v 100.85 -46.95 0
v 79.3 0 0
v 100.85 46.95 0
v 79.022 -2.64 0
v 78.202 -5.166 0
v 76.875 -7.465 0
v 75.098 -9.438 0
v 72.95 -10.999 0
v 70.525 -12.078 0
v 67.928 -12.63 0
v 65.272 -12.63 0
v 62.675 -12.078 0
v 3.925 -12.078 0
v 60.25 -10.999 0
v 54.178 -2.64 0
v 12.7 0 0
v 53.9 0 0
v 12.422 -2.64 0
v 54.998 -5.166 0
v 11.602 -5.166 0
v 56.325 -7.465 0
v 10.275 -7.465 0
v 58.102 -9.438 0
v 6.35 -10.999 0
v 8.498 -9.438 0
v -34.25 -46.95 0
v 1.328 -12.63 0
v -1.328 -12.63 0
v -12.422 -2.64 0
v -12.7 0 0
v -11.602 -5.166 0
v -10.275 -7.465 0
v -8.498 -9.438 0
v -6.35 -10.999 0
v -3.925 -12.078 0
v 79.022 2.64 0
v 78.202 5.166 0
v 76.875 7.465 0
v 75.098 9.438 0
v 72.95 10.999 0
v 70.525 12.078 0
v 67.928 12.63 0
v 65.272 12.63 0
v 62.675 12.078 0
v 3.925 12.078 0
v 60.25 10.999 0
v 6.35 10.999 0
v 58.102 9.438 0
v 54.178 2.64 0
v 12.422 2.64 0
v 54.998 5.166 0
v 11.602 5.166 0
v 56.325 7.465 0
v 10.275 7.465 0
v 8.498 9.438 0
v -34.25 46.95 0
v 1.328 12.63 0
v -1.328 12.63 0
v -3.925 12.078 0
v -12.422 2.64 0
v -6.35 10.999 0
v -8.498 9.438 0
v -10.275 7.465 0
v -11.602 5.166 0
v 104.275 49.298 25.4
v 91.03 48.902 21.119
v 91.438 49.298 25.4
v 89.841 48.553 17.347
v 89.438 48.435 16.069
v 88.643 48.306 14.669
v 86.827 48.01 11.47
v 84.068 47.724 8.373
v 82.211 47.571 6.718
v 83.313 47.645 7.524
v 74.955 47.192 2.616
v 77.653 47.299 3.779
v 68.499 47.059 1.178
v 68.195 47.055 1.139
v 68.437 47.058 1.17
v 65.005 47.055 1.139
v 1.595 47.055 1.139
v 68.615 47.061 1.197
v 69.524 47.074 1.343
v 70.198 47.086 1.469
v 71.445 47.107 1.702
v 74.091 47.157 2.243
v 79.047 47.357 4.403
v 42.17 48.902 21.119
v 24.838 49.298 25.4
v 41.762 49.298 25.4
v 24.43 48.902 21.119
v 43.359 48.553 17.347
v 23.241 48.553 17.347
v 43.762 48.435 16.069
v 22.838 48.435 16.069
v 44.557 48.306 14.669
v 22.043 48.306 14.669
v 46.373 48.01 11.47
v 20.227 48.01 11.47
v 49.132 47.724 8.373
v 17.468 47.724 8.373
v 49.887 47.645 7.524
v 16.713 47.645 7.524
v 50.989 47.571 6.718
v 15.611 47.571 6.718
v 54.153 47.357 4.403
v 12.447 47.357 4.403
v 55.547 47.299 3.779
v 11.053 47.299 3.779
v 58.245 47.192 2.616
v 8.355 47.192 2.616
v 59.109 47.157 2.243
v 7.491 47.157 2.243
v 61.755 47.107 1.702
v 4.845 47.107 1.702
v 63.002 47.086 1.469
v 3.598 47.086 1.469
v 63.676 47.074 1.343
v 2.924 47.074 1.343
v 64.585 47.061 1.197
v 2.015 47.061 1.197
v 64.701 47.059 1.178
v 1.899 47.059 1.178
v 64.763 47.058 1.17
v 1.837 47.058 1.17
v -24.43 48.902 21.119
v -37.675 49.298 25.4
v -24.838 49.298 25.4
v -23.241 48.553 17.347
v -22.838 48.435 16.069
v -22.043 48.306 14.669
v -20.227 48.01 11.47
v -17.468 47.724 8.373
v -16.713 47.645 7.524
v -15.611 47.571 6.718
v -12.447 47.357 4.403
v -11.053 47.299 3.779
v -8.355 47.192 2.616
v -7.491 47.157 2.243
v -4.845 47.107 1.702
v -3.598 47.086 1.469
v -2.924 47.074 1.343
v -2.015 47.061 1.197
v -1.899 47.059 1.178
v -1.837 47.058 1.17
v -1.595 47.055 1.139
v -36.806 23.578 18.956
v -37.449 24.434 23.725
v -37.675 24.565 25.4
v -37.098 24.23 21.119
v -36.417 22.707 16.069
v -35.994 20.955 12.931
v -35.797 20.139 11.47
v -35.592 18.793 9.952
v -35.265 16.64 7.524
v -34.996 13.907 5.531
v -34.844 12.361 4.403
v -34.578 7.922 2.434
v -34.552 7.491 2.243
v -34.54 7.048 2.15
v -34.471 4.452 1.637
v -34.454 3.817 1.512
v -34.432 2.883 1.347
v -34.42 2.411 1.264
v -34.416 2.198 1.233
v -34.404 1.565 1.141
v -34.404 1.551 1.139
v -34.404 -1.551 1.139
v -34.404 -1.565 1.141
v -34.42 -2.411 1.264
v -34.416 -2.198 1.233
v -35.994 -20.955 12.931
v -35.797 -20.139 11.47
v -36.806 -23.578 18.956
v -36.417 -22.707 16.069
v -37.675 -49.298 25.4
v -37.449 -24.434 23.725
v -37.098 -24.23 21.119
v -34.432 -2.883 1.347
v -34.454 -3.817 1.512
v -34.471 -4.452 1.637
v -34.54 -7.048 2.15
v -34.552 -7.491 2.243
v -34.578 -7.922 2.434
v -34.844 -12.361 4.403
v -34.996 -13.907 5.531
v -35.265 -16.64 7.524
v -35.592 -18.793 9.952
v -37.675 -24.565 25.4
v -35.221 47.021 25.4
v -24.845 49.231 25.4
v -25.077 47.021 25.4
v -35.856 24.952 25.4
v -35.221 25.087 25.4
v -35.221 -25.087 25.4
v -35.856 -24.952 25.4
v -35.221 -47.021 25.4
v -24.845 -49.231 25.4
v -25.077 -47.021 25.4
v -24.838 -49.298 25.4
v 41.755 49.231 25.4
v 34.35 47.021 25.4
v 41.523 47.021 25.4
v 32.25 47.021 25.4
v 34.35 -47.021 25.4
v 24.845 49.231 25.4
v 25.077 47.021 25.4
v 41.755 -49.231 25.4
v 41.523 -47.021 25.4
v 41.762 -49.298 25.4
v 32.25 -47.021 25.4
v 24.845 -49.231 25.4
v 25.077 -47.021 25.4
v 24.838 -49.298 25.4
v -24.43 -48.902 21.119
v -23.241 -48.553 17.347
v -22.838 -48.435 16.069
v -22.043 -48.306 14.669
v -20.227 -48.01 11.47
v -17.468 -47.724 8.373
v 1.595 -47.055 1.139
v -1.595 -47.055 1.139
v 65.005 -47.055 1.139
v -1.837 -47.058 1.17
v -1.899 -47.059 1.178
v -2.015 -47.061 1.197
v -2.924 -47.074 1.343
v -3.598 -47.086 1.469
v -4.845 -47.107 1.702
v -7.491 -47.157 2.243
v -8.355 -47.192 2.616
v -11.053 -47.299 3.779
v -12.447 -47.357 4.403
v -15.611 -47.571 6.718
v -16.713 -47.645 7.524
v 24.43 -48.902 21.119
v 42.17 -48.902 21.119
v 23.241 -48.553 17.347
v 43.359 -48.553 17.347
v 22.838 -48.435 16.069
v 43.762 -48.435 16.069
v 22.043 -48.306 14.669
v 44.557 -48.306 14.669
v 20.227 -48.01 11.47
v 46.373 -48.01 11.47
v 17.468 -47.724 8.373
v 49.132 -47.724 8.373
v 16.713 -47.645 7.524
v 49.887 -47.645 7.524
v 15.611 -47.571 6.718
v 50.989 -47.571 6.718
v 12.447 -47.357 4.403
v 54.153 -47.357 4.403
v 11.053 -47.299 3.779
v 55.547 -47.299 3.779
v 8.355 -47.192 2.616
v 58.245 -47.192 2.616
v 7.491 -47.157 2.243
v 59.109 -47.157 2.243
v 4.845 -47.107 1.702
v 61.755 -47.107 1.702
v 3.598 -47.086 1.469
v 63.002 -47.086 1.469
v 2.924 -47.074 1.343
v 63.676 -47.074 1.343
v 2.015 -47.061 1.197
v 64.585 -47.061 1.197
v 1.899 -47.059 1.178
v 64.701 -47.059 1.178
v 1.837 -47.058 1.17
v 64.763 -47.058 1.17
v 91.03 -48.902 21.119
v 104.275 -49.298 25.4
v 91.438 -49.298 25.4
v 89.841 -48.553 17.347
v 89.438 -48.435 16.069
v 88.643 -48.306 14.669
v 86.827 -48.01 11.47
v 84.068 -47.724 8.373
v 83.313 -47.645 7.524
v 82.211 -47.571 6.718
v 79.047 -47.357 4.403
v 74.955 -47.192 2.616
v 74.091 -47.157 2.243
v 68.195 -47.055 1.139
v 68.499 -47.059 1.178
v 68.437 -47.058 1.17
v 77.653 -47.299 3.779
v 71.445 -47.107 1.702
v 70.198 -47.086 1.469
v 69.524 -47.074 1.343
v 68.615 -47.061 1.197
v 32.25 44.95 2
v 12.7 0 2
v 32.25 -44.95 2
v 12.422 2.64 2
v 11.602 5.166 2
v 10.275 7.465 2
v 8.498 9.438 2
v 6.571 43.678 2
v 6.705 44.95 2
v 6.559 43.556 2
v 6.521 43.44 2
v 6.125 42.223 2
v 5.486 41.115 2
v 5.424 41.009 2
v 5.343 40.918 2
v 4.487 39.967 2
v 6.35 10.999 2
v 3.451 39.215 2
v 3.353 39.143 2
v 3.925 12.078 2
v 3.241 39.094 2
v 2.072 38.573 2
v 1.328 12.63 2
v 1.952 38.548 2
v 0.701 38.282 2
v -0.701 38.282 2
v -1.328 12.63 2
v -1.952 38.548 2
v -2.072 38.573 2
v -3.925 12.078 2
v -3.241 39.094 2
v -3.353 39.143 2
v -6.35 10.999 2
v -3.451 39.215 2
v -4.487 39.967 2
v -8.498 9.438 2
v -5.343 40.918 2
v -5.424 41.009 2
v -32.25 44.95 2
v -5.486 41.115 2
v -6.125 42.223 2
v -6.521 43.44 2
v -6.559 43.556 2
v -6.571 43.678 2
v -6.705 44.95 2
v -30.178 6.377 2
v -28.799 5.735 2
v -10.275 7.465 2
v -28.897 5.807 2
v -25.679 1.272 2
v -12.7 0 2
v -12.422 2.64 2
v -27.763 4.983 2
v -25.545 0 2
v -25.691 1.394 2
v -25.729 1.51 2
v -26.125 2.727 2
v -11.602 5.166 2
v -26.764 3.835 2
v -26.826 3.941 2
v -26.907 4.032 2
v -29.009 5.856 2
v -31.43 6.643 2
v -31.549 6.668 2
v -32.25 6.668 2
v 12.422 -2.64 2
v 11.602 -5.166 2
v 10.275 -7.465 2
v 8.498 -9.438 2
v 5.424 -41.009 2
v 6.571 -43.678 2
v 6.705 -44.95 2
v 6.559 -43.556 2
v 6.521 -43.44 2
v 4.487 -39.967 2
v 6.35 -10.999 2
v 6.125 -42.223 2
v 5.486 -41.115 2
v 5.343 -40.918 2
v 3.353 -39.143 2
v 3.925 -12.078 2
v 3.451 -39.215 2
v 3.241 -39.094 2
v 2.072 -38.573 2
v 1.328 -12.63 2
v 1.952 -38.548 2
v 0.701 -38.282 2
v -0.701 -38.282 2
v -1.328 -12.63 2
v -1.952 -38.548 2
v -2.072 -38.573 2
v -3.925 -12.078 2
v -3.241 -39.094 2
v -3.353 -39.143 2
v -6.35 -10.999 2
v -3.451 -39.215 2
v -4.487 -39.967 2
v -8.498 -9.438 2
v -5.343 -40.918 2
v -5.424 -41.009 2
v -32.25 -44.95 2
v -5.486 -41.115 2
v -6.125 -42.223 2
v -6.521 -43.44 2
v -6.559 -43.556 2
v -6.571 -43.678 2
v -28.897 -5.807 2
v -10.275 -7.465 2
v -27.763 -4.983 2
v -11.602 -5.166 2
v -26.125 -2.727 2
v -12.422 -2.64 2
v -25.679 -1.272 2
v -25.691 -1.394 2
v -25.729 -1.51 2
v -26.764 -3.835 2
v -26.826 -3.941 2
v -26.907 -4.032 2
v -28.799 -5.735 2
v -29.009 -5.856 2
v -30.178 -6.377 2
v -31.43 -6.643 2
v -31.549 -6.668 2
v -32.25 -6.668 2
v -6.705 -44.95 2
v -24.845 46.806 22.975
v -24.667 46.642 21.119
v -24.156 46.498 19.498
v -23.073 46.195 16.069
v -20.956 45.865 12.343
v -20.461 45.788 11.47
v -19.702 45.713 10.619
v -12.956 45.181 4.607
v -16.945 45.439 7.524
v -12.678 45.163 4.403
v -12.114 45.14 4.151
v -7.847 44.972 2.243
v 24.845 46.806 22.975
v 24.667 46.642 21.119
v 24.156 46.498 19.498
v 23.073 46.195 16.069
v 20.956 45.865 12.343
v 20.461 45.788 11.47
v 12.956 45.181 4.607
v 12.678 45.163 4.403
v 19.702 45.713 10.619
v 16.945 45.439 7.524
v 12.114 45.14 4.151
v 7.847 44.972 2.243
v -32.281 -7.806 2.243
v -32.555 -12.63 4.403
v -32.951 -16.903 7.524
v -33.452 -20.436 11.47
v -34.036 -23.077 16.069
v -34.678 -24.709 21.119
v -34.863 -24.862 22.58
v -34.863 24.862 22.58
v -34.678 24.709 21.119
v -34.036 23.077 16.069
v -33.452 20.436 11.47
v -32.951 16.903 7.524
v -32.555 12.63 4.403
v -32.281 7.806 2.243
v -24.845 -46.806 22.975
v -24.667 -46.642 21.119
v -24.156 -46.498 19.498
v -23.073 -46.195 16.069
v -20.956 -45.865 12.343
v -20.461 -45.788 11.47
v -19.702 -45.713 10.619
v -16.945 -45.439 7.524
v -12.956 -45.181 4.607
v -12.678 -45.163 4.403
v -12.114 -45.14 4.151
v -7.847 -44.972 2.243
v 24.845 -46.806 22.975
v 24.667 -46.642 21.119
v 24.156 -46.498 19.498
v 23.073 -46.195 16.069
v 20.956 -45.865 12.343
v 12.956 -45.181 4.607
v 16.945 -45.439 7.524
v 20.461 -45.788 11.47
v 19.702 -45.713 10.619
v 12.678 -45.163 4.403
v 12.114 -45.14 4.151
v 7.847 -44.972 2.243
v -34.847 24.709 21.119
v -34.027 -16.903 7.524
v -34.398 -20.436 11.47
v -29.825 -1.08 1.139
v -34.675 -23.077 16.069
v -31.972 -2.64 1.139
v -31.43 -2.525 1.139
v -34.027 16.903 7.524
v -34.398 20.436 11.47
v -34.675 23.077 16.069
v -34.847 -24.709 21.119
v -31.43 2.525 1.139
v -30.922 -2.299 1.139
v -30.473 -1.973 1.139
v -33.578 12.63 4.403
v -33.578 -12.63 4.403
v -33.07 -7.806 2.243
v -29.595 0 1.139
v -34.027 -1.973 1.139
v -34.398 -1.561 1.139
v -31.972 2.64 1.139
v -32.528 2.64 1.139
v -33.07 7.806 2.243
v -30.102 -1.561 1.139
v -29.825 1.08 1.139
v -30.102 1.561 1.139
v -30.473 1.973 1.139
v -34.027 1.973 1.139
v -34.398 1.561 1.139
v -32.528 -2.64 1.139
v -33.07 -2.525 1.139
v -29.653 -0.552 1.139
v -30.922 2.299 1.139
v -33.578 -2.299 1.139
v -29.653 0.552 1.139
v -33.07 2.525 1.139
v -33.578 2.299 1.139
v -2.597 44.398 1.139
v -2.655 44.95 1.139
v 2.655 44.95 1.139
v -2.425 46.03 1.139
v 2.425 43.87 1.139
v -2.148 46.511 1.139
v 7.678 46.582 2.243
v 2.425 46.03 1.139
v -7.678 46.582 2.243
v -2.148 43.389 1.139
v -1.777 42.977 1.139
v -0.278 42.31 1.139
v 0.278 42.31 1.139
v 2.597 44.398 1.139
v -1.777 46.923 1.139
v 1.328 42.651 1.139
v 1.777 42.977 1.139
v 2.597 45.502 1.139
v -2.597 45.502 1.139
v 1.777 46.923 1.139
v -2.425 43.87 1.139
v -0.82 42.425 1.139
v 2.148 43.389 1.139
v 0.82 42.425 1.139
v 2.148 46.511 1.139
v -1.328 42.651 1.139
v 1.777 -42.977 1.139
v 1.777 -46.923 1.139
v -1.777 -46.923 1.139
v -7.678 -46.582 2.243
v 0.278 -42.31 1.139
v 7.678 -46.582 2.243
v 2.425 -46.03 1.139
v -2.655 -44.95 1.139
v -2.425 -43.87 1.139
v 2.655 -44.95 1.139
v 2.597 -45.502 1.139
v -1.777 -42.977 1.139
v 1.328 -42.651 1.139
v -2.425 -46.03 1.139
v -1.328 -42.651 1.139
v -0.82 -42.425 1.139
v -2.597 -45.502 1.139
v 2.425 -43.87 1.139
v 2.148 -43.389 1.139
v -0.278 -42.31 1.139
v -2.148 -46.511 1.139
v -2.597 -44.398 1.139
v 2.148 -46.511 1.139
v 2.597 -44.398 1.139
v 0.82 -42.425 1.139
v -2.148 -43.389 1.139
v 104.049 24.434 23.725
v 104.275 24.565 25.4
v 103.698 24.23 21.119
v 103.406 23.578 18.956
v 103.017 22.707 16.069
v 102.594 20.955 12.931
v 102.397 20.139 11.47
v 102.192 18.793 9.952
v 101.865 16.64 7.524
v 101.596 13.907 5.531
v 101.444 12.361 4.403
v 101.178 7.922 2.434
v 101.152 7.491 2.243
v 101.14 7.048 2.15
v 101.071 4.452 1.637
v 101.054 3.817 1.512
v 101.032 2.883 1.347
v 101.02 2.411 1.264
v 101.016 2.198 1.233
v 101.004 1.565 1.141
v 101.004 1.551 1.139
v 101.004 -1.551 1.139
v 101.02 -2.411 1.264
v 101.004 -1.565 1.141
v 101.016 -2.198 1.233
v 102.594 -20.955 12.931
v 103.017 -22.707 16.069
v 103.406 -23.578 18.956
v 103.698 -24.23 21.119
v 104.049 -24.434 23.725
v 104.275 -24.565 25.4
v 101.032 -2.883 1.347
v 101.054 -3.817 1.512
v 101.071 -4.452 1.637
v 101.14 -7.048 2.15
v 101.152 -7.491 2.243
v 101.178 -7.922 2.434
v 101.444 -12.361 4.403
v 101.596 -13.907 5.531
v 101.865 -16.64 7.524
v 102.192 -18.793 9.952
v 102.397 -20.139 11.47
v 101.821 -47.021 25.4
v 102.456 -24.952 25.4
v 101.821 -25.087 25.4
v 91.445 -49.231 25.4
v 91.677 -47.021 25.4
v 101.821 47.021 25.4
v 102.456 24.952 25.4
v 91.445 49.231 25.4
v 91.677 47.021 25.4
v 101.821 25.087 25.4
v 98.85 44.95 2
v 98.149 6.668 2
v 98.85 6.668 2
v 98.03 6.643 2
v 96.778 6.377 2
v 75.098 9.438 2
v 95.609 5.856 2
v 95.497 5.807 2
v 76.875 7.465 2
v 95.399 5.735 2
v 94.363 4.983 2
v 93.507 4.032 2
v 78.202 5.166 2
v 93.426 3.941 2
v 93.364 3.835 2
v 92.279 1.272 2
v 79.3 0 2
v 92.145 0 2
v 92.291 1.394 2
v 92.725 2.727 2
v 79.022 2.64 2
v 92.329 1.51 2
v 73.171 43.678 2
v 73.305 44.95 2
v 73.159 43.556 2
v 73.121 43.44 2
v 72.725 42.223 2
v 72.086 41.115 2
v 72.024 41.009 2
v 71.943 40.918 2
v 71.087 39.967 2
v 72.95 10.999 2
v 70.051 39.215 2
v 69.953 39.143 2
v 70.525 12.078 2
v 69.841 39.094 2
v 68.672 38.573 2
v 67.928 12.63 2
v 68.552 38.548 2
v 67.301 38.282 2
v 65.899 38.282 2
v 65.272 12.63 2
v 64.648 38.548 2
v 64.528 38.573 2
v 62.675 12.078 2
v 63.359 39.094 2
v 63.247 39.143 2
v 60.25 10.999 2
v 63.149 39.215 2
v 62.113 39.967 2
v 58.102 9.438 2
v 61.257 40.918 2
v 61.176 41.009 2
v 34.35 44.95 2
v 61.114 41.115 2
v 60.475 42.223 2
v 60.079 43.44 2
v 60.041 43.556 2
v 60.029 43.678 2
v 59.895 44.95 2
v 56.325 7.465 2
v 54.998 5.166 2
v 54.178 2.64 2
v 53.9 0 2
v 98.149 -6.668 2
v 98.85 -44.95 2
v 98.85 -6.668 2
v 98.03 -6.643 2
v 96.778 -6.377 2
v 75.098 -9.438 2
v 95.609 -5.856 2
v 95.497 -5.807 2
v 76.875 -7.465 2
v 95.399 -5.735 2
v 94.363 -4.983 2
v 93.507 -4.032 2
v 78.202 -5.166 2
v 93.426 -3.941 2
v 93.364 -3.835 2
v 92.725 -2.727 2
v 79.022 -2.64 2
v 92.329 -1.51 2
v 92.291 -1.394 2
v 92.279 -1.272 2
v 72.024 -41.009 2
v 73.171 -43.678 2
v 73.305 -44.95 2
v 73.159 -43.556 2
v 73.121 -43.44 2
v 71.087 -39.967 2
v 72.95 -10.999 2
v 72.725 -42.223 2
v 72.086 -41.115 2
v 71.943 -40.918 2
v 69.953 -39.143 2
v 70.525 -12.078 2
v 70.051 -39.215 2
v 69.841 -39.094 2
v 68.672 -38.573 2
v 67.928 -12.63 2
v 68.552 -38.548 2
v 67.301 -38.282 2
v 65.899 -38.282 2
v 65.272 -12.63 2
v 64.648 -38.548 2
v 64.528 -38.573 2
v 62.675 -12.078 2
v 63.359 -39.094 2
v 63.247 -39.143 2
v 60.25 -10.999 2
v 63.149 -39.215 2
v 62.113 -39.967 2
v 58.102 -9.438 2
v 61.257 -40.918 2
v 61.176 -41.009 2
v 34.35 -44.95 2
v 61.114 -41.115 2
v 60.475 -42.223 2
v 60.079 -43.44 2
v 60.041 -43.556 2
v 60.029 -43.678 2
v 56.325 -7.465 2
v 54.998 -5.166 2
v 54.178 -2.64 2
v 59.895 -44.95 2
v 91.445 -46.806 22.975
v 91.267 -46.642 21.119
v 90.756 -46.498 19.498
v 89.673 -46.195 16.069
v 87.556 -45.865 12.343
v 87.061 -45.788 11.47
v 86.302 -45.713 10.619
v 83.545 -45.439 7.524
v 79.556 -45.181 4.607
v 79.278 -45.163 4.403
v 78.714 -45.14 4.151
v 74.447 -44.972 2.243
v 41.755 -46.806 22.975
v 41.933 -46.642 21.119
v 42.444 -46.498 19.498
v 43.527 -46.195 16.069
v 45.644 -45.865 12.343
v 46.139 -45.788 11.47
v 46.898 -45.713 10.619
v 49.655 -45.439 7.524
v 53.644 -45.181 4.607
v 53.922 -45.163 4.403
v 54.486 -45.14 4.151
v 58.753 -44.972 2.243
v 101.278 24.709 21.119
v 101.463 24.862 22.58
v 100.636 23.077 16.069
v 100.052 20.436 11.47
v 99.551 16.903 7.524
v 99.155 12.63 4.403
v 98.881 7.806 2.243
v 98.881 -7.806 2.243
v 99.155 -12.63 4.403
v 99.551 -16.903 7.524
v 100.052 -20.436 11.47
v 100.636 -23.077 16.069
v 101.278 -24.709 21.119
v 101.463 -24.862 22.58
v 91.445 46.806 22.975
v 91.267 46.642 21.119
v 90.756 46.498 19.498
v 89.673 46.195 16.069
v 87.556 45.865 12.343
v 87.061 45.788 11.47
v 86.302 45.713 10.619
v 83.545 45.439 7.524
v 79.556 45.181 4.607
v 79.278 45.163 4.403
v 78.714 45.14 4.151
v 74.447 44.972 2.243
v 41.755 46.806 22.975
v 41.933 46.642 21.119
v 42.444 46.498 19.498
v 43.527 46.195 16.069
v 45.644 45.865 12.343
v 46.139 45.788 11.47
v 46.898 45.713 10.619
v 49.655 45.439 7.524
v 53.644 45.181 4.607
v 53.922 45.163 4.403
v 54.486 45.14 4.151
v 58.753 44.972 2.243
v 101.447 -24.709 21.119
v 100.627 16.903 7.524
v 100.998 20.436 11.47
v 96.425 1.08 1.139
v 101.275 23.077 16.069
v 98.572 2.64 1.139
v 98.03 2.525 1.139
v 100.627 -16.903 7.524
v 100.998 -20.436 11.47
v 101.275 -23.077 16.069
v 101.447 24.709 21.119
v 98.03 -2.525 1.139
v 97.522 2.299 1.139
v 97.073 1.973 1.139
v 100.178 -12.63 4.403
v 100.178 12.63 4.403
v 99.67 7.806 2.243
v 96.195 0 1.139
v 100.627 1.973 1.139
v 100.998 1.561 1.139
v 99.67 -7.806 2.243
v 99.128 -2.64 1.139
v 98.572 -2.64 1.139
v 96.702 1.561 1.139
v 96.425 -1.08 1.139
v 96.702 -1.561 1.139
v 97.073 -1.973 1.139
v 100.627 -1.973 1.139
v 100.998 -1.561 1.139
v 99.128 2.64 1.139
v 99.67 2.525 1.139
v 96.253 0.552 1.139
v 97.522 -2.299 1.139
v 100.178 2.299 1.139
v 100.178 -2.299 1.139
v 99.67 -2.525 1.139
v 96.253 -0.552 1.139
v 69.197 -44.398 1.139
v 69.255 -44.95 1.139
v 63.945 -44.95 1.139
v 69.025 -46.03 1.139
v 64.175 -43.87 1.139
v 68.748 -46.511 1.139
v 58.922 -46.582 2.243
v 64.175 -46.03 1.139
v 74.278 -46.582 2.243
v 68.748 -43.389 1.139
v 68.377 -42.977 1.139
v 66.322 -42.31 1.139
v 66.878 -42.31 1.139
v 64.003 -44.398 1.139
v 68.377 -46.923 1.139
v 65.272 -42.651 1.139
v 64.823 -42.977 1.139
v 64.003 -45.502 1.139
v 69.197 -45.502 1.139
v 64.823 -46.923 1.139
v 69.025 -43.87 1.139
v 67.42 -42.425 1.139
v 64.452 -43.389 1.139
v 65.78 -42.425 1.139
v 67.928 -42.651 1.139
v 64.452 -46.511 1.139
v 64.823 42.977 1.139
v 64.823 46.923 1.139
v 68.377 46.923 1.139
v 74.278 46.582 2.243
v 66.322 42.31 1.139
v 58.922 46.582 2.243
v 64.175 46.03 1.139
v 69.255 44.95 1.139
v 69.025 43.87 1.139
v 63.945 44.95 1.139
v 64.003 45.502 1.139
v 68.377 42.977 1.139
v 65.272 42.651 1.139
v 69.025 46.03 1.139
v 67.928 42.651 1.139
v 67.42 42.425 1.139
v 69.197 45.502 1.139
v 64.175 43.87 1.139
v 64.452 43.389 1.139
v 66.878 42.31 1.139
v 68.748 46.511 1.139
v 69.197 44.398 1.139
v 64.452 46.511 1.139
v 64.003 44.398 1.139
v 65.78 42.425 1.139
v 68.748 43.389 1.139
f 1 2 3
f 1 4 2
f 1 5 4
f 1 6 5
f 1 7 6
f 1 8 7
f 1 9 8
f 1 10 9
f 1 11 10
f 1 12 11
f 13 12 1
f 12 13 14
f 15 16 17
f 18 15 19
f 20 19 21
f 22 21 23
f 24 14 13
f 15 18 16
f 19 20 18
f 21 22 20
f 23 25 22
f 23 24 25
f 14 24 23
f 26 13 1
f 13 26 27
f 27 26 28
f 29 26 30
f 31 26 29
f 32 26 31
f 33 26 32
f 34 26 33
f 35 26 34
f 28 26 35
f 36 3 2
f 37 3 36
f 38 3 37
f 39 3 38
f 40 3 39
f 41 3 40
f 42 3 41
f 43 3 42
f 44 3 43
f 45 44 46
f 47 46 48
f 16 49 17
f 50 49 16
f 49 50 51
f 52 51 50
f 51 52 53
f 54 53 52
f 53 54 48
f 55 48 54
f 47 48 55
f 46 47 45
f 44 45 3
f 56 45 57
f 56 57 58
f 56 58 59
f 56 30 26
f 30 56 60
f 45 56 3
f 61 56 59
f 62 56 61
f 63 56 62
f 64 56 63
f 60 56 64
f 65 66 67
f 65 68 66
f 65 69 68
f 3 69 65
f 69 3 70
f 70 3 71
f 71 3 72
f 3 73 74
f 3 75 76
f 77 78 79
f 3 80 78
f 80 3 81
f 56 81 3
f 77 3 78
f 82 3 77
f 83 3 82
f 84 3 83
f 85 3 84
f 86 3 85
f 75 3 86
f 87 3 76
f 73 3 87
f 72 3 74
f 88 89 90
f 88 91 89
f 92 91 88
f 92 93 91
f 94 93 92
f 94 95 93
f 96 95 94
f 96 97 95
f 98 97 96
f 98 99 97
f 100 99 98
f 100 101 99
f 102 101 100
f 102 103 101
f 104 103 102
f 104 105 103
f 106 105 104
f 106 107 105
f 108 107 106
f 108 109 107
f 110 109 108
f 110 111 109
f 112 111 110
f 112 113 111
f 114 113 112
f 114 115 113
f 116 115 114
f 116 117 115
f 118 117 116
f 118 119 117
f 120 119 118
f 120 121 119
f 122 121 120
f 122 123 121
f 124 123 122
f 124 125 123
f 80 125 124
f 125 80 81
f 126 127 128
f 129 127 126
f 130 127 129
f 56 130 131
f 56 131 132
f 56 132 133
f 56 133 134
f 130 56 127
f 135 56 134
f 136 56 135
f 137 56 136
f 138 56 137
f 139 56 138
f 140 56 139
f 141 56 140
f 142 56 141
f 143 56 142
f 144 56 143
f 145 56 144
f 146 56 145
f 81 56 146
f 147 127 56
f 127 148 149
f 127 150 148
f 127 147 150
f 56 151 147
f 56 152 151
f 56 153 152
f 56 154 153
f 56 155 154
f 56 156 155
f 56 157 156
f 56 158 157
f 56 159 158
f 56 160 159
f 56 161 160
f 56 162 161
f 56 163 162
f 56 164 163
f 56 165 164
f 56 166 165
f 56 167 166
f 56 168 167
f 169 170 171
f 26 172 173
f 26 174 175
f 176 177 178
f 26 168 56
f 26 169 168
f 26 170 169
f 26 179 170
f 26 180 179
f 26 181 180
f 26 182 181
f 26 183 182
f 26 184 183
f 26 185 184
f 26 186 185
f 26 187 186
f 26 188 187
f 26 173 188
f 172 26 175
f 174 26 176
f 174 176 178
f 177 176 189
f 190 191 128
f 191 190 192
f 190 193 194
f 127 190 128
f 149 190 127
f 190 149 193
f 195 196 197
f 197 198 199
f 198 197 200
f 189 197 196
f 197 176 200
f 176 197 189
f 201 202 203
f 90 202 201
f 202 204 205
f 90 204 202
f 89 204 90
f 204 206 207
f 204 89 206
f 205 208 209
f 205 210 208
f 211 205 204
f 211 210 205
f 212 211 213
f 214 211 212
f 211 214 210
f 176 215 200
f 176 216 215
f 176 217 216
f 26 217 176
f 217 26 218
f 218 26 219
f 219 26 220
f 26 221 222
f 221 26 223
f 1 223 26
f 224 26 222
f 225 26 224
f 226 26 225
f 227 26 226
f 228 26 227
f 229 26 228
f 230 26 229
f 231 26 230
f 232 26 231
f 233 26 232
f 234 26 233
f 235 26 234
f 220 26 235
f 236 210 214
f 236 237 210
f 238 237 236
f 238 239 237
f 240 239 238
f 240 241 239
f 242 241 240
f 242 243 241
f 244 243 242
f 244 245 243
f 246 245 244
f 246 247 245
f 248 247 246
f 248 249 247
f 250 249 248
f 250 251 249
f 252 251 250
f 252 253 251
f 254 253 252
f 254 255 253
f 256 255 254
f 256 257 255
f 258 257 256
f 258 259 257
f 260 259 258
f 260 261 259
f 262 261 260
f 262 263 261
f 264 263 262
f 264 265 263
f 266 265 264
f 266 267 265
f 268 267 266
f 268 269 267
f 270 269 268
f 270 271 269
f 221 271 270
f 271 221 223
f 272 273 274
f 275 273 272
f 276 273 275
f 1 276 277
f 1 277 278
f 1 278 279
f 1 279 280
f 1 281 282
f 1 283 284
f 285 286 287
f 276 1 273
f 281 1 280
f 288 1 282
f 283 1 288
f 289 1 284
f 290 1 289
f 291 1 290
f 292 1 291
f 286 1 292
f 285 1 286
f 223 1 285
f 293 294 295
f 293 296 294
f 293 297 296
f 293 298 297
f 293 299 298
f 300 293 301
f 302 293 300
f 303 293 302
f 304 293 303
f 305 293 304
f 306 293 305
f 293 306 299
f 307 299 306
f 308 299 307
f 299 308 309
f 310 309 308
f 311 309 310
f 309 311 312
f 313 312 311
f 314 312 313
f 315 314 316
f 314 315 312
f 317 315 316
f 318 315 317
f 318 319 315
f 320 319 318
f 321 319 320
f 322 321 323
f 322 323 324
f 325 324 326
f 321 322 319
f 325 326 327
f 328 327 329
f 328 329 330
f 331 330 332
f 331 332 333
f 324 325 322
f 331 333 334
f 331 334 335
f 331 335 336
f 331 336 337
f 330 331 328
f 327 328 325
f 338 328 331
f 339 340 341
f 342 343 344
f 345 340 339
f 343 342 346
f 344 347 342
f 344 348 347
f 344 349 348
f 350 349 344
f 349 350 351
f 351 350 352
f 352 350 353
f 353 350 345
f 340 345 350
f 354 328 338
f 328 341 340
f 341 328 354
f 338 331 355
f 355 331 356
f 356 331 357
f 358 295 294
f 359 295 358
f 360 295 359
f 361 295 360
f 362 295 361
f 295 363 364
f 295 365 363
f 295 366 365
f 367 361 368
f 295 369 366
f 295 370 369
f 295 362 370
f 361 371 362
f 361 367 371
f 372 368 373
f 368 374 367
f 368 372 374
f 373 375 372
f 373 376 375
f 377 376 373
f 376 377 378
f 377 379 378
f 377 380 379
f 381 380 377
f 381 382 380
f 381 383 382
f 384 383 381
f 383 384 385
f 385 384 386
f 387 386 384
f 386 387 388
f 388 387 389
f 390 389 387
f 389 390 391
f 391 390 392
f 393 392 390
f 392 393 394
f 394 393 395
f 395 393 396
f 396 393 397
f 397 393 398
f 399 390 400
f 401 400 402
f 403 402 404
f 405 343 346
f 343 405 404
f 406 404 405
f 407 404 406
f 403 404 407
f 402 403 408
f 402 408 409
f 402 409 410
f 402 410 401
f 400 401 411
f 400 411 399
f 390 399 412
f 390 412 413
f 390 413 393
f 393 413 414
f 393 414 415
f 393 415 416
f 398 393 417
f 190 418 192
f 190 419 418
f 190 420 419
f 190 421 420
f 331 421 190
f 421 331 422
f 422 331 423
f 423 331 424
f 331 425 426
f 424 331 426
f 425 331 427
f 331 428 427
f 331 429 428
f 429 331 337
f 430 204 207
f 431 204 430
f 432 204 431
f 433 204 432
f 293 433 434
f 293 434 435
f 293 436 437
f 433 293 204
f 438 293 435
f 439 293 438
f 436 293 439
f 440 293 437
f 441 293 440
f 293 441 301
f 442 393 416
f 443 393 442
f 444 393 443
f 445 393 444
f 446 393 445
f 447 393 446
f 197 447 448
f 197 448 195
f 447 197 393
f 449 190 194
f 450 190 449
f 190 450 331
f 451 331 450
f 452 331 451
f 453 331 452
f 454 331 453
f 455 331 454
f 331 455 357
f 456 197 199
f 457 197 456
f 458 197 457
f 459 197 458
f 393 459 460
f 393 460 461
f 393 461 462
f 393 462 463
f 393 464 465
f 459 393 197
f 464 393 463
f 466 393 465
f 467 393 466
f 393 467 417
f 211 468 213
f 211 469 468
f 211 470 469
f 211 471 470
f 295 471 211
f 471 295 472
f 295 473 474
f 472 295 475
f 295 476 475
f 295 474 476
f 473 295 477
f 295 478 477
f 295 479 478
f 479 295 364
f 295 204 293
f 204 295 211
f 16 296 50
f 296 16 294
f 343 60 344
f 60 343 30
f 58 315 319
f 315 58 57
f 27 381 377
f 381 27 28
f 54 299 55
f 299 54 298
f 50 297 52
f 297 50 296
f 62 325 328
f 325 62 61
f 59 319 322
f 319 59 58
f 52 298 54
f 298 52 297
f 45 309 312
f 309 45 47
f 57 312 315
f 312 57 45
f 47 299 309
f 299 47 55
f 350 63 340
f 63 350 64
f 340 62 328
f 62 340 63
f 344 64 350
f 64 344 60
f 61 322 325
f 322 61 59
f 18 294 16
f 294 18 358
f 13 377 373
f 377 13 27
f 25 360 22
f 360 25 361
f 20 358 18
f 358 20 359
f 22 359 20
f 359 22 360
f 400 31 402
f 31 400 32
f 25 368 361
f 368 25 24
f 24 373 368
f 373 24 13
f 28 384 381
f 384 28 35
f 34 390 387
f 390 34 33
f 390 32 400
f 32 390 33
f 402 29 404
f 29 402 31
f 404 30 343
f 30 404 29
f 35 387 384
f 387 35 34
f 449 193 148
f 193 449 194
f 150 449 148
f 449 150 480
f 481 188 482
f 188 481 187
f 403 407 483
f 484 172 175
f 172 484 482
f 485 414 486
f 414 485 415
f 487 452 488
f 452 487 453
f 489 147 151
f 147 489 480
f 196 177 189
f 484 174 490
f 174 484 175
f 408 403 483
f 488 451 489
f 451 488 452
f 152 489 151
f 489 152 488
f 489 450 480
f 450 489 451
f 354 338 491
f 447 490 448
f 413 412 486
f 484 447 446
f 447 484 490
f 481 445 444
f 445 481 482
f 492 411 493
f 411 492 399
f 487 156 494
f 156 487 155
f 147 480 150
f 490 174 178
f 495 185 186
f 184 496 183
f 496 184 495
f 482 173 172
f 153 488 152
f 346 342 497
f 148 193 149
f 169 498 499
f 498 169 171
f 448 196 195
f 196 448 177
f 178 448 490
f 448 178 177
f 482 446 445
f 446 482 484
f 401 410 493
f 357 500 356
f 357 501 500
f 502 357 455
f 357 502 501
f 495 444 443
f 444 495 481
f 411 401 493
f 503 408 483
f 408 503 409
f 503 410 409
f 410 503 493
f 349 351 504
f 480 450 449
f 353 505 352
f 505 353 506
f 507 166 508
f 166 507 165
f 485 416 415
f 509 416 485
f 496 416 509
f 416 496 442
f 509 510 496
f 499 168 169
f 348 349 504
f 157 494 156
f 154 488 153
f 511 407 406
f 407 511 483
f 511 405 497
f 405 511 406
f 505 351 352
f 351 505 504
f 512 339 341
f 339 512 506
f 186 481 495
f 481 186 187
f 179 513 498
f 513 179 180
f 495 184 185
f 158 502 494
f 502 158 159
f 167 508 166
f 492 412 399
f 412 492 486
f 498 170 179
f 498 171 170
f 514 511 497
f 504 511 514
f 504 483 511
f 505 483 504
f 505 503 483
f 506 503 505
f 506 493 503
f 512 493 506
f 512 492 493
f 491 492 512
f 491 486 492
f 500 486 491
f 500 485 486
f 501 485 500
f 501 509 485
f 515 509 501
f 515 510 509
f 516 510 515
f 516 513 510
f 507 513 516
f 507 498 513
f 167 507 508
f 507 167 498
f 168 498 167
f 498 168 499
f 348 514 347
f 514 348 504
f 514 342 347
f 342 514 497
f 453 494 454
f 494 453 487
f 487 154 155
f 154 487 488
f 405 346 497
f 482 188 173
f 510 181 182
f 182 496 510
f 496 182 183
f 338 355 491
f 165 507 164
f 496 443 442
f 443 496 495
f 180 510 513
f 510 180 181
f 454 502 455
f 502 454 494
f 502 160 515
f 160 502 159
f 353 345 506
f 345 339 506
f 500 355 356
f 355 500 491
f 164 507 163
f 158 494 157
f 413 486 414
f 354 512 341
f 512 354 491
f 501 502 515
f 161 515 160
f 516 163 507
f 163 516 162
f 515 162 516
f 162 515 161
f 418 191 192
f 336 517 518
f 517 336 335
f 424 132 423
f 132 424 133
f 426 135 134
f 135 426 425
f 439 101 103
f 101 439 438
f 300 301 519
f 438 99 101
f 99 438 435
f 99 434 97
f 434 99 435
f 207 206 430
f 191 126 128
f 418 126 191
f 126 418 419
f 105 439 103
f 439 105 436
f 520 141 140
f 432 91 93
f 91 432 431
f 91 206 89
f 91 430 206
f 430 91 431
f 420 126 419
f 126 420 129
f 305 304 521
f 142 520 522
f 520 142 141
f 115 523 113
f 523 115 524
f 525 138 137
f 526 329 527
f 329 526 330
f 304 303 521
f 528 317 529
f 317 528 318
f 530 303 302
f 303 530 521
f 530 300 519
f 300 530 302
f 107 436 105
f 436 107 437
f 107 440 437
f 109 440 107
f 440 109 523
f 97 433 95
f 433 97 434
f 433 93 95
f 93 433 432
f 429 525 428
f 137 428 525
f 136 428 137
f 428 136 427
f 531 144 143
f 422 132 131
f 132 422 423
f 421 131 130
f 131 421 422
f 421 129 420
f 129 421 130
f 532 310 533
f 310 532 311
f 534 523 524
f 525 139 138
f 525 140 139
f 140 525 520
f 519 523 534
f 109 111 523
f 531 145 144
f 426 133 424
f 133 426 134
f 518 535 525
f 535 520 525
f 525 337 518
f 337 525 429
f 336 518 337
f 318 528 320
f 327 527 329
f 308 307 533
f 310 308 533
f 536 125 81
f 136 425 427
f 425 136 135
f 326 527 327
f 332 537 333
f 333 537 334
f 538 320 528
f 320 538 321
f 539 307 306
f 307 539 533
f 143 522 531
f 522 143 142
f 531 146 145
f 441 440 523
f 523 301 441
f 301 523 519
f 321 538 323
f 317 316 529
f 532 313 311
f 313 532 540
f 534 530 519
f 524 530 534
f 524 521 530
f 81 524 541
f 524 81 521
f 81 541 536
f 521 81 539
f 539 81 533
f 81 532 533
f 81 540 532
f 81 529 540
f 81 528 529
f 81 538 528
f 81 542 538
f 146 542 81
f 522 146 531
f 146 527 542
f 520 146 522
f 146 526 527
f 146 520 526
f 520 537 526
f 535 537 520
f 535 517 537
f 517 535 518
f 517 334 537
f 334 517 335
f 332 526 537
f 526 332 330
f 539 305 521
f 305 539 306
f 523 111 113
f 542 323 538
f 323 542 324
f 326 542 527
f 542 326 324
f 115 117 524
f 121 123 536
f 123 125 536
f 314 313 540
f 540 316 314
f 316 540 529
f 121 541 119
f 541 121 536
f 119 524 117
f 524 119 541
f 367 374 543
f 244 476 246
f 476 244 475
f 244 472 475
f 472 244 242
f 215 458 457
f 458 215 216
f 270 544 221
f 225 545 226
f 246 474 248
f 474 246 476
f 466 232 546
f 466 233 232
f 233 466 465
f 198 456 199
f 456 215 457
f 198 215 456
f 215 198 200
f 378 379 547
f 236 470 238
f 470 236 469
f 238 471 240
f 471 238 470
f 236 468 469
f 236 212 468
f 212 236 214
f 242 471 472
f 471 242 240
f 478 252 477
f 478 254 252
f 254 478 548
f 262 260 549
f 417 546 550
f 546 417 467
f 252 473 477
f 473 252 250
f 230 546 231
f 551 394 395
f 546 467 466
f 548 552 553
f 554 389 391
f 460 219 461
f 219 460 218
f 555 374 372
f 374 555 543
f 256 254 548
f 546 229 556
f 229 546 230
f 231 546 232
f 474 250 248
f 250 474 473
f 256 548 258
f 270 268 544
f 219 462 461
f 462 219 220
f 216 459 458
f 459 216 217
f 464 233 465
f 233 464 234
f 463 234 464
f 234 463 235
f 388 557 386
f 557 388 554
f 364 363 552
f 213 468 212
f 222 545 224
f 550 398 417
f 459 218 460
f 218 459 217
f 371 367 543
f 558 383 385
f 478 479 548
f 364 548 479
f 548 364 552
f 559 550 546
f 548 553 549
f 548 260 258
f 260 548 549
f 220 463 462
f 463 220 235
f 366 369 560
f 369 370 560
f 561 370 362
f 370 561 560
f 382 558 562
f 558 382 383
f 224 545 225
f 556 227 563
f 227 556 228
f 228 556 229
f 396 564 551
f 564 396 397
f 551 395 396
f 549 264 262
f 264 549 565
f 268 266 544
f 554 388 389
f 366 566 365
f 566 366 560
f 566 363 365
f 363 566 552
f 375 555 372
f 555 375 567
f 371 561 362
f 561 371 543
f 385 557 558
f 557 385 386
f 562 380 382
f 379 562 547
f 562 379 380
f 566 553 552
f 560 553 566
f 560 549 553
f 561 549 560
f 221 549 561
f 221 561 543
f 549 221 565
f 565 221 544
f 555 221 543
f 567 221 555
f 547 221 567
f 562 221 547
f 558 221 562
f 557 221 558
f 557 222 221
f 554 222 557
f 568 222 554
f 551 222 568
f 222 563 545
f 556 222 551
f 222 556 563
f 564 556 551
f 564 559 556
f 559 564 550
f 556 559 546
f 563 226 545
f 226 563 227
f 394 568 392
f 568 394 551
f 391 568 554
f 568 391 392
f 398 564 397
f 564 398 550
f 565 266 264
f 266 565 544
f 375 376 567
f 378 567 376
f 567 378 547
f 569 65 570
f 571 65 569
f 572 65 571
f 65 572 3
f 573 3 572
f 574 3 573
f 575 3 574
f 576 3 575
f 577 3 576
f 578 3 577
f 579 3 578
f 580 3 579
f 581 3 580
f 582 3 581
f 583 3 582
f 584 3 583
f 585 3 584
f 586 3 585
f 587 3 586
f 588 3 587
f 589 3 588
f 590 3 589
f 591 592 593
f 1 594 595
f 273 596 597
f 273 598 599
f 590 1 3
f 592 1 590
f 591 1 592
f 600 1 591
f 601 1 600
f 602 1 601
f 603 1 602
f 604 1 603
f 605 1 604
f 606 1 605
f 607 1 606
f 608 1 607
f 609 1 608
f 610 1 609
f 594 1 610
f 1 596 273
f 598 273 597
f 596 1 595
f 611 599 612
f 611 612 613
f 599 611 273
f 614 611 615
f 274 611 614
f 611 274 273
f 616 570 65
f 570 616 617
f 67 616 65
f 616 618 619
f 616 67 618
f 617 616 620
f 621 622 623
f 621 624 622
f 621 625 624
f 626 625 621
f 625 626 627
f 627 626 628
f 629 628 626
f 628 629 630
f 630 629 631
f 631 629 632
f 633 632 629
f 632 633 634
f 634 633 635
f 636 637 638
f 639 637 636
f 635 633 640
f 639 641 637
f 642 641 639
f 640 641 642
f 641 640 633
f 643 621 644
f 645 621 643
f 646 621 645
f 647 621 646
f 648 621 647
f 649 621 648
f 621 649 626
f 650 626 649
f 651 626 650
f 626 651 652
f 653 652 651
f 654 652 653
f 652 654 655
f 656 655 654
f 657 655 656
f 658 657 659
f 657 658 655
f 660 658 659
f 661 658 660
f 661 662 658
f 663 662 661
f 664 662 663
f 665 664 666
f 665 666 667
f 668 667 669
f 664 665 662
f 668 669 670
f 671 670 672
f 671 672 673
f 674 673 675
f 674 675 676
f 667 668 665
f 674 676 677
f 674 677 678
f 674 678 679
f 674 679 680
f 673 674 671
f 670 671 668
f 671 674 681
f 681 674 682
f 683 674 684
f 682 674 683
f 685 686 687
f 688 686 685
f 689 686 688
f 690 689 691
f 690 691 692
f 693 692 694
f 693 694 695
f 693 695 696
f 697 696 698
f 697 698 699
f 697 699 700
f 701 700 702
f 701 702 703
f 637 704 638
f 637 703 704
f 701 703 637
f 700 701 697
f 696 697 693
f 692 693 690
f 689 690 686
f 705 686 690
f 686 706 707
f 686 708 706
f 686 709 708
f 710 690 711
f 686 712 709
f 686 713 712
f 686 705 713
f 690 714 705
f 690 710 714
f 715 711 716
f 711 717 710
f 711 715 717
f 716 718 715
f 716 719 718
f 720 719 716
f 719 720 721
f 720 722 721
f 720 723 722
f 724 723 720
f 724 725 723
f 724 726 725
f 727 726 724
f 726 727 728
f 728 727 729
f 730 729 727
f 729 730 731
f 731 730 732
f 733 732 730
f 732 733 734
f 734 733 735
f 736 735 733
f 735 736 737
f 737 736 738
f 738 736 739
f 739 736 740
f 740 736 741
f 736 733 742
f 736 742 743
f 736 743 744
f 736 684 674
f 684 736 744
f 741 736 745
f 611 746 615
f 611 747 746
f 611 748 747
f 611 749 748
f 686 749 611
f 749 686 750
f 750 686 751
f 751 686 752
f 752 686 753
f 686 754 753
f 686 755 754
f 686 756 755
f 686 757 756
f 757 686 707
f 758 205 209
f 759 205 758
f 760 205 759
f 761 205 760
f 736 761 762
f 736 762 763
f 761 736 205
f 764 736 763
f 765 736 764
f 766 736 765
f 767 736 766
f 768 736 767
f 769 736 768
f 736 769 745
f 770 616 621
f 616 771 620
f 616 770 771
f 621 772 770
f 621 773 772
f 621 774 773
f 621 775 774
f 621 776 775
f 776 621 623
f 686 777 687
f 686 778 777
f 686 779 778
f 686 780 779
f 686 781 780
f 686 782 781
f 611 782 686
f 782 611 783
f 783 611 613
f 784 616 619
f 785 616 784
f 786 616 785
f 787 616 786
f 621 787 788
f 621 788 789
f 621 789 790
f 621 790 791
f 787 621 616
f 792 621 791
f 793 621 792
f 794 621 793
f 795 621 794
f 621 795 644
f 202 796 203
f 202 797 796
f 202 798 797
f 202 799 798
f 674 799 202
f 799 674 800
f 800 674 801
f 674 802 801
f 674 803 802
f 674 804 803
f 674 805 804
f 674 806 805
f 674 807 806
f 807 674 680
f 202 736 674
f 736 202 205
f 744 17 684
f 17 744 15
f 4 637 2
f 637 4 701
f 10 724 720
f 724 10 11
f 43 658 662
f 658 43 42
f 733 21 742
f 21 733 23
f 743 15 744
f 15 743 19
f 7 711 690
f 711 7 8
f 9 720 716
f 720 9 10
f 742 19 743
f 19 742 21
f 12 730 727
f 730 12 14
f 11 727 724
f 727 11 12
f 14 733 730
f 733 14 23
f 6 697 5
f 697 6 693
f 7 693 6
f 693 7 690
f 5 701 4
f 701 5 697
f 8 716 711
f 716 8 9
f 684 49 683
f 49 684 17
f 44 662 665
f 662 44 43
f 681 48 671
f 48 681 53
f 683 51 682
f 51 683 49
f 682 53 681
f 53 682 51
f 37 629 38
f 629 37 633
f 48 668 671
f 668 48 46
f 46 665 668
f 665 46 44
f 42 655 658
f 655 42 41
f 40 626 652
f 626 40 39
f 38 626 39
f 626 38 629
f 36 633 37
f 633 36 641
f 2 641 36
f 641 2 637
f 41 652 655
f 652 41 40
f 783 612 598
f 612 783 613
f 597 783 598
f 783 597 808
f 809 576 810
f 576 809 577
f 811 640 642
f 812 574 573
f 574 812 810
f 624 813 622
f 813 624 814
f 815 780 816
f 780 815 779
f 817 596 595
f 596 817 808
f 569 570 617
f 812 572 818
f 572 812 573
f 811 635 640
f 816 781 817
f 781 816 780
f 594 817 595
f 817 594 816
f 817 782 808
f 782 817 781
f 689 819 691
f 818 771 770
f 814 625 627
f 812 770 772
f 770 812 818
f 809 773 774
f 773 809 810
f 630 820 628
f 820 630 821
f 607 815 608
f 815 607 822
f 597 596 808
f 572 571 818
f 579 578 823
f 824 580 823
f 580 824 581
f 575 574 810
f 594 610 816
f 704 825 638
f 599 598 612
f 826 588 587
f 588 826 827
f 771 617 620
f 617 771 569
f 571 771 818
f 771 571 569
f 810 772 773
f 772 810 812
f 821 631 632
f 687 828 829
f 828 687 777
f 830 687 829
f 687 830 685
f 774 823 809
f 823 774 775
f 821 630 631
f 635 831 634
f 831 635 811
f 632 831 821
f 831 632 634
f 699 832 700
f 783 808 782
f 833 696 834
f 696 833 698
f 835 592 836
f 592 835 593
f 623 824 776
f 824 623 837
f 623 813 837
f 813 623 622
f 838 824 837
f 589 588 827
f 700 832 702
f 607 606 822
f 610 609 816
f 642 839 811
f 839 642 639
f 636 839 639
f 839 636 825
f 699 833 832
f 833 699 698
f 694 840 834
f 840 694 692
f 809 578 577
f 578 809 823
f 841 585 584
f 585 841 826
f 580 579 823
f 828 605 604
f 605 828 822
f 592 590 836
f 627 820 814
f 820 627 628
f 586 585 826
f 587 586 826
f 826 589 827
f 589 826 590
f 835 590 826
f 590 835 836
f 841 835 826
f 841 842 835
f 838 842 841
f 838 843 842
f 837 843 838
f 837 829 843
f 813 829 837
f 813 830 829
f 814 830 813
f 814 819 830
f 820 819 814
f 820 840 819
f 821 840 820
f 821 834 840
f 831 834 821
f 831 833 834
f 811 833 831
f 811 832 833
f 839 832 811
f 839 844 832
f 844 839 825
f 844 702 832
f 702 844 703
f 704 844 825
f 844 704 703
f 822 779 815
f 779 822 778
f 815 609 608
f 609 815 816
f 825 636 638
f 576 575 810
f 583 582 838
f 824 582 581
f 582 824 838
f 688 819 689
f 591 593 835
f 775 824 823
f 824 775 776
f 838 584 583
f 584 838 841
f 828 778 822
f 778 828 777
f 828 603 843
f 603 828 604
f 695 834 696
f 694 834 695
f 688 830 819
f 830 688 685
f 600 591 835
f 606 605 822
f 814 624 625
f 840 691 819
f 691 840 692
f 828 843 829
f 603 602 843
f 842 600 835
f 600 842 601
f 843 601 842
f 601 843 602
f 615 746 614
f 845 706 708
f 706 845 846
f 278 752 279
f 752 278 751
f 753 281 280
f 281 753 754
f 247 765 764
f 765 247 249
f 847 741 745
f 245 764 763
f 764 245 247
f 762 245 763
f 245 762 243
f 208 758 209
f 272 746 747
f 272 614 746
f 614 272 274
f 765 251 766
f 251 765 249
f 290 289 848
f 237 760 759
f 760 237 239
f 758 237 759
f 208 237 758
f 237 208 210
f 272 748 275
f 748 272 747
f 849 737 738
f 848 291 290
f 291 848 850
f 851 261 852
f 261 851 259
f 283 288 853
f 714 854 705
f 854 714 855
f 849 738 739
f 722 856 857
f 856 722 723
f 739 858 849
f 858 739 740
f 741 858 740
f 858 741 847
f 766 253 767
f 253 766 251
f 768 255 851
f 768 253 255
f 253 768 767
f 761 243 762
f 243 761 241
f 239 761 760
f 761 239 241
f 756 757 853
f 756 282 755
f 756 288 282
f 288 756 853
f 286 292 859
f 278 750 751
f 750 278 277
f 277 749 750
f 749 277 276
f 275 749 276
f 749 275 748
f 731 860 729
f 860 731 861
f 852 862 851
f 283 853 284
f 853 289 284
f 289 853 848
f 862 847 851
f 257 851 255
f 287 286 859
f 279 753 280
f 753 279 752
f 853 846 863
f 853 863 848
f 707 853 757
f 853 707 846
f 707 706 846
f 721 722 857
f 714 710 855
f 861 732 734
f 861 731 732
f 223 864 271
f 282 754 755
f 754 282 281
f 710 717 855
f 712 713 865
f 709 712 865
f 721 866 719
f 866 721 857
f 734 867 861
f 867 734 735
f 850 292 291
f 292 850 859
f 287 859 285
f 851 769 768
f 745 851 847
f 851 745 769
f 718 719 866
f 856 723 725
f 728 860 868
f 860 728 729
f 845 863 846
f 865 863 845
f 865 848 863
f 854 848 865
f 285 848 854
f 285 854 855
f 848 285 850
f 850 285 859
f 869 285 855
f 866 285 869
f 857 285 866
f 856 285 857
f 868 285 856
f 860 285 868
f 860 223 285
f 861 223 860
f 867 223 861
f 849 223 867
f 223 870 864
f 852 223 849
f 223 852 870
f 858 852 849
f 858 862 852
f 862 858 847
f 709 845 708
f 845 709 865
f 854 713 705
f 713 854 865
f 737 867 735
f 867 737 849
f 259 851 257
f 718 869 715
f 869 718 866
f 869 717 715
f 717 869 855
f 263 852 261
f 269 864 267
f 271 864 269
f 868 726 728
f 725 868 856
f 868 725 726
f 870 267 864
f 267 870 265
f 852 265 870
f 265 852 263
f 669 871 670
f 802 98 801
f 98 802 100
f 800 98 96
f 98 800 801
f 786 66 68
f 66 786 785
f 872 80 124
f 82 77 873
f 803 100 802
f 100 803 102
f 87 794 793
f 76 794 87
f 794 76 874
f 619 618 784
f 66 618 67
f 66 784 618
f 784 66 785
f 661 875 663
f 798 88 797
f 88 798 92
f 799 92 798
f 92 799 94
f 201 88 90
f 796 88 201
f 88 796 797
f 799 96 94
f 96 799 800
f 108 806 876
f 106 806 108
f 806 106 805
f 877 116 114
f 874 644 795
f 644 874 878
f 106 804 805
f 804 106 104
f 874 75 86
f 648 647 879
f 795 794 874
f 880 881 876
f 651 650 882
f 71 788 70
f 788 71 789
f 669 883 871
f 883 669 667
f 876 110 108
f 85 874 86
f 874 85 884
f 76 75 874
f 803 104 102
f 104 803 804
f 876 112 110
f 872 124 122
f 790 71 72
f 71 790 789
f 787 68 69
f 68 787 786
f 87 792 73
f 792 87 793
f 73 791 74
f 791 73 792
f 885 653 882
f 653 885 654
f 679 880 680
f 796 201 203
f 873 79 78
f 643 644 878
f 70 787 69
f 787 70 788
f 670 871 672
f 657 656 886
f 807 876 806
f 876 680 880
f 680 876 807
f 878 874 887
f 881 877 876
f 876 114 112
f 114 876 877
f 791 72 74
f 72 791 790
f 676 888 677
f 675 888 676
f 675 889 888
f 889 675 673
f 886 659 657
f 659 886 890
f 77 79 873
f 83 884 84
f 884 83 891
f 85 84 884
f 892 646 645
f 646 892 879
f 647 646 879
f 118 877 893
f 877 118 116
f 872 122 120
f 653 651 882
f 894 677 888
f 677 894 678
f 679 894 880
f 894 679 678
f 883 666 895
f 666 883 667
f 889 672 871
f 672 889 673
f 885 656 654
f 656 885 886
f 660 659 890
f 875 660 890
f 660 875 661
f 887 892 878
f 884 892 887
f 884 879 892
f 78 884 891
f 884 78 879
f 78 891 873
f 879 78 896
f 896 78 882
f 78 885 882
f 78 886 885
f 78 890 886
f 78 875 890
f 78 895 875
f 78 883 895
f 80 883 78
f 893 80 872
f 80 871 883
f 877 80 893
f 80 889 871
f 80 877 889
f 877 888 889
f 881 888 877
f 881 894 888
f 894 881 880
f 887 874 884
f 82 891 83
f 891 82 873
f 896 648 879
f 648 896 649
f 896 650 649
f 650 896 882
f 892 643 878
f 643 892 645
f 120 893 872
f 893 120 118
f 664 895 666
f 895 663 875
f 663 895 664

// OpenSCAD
//
// 2-deck Playing Card tray
//

INCH = 25.4;

SLOP = 1;
EPSILON = 0.1;

WIDTH = 2.5 * INCH + SLOP;
HEIGHT = 3.5 * INCH + SLOP;

THICKNESS = 2;

X_SCALE = (WIDTH + 2 * THICKNESS) / WIDTH;
Y_SCALE = (HEIGHT + 2 * THICKNESS) / HEIGHT;

$fs = 1;


module deck(h) {
    translate([WIDTH / 2, 0, 0])
    linear_extrude(height=h, scale=1.05)
      translate([-WIDTH / 2, 0, 0])
        square([WIDTH, HEIGHT], center=true);
}


module tray(h) {
    difference() {
        scale([X_SCALE, Y_SCALE, 1])
            deck(h);
        translate([0, 0, THICKNESS])
            deck(h);
        cylinder(h=3 * h, r=0.5 * INCH, center=true);
        translate([-WIDTH/2, 0, h + THICKNESS / 2])
            sphere(r=h);
        translate([0, HEIGHT / 2, h + THICKNESS / 2])
            sphere(r=h);
        translate([0, -HEIGHT / 2, h + THICKNESS / 2])
            sphere(r=h);
    }
}

tray(INCH);

translate([WIDTH + THICKNESS + EPSILON, 0, 0])
    rotate([0, 0, 180])
        tray(INCH);
